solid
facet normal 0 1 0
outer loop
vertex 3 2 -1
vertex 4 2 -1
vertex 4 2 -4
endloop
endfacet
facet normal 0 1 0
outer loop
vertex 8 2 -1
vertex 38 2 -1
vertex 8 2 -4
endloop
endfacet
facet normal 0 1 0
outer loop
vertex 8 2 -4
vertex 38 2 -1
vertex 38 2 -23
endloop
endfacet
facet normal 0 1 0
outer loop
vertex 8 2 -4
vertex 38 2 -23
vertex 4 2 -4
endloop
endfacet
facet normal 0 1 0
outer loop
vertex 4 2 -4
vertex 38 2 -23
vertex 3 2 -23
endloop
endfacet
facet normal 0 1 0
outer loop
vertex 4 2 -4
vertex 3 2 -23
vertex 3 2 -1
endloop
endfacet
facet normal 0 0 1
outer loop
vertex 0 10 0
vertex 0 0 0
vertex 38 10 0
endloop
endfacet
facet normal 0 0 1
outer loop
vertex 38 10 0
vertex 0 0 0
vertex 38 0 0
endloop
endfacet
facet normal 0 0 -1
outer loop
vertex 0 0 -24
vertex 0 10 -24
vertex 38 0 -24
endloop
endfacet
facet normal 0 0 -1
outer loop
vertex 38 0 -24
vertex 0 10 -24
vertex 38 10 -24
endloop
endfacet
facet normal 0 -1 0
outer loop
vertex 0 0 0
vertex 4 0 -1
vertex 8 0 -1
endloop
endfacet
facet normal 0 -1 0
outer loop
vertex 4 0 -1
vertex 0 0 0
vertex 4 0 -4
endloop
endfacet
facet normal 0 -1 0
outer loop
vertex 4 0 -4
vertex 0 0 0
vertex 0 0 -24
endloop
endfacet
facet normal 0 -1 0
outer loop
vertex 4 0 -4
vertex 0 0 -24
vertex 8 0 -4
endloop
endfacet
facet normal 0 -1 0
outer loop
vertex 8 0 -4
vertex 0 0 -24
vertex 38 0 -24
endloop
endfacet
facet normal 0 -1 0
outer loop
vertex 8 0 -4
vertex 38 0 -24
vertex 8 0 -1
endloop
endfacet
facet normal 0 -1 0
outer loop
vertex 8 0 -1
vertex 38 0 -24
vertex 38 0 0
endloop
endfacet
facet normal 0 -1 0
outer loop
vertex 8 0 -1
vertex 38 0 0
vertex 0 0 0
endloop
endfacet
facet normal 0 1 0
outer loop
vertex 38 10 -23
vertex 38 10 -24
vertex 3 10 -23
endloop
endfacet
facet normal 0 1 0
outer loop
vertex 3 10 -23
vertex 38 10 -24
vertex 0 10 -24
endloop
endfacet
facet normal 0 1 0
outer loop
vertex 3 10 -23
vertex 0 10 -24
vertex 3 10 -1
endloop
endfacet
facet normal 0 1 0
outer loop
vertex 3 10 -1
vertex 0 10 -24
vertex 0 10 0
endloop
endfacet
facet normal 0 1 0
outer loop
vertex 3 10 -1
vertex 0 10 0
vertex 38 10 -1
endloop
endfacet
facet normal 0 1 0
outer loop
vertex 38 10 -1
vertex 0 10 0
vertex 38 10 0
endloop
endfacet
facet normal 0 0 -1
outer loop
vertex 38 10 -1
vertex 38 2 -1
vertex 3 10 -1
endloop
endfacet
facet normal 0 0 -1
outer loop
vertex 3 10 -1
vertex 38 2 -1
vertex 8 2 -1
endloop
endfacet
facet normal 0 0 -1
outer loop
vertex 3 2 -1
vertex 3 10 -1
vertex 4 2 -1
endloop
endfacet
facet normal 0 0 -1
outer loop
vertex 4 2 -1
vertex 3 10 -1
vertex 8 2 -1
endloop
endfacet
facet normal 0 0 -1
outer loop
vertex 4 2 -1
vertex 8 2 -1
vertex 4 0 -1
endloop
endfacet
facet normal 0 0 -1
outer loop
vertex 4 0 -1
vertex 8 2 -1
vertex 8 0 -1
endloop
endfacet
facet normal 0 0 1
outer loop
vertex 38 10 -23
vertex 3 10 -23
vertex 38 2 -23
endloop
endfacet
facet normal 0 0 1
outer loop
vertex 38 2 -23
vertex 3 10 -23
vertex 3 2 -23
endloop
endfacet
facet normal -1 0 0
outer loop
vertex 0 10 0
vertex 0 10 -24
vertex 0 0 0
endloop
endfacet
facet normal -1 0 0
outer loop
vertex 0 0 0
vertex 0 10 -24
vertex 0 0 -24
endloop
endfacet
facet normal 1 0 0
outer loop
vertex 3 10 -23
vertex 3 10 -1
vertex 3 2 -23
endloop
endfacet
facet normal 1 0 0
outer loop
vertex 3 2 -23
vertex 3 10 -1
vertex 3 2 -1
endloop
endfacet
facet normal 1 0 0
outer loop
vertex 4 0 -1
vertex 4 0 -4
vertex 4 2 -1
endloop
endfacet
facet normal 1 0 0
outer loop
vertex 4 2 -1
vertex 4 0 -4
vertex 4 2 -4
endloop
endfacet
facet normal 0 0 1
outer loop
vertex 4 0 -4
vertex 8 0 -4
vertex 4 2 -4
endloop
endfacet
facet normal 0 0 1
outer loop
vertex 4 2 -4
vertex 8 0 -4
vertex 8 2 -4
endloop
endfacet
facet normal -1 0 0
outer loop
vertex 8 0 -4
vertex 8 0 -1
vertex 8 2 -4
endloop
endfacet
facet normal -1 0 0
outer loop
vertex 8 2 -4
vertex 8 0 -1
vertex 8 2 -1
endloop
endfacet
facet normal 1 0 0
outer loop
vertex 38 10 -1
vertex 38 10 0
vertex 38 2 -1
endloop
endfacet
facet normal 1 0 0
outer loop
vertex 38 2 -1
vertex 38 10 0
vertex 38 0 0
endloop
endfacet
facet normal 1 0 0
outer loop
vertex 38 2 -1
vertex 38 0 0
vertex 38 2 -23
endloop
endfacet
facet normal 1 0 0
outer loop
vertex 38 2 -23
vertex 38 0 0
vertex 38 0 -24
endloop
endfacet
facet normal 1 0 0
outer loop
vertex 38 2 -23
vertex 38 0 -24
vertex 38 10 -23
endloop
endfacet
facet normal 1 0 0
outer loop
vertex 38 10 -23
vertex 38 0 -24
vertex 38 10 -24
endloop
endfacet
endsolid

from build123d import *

# Parameters (mm, degrees)
SKETCH1_W           = 40
SKETCH1_H           = 24
BOSS_EXTRUDE1_DEPTH = 2
SKETCH2_W           = 40
SKETCH2_H           = 24
SKETCH2_W_2         = 36
SKETCH2_H_2         = 22
BOSS_EXTRUDE3_DEPTH = 8
SKETCH5_W           = 4
SKETCH5_H           = 3
CUT_EXTRUDE1_DEPTH  = 2
SKETCH6_W           = 24
SKETCH6_H           = 10
CUT_EXTRUDE2_DEPTH  = 2


with BuildPart() as part:
    # Sketch1 → Boss-Extrude1 (new body)
    with BuildSketch(Plane(origin=(0, 0, 0), x_dir=(1, 0, 0), z_dir=(0, 1, 0))):
        with Locations((20, 12)):
            Rectangle(SKETCH1_W, SKETCH1_H)
    extrude(amount=BOSS_EXTRUDE1_DEPTH)

    # Sketch2 → Boss-Extrude3 (add)
    with BuildSketch(Plane(origin=(0, 2, 0), x_dir=(1, 0, 0), z_dir=(0, 1, 0))):
        with Locations((20, 12)):
            Rectangle(SKETCH2_W, SKETCH2_H)
        with Locations((21, 12)):
            Rectangle(SKETCH2_W_2, SKETCH2_H_2, mode=Mode.SUBTRACT)
    extrude(amount=BOSS_EXTRUDE3_DEPTH)

    # Sketch5 → Cut-Extrude1 (cut)
    with BuildSketch(Plane(origin=(0, 2, 0), x_dir=(1, 0, 0), z_dir=(0, 1, 0))):
        with Locations((6, 2.5)):
            Rectangle(SKETCH5_W, SKETCH5_H)
    extrude(amount=-CUT_EXTRUDE1_DEPTH, mode=Mode.SUBTRACT)

    # Sketch6 → Cut-Extrude2 (cut)
    with BuildSketch(Plane(origin=(40, 0, 0), x_dir=(0, 0, -1), z_dir=(1, 0, 0))):
        with Locations((12, 5)):
            Rectangle(SKETCH6_W, SKETCH6_H)
    extrude(amount=-CUT_EXTRUDE2_DEPTH, mode=Mode.SUBTRACT)


solid = part.part
